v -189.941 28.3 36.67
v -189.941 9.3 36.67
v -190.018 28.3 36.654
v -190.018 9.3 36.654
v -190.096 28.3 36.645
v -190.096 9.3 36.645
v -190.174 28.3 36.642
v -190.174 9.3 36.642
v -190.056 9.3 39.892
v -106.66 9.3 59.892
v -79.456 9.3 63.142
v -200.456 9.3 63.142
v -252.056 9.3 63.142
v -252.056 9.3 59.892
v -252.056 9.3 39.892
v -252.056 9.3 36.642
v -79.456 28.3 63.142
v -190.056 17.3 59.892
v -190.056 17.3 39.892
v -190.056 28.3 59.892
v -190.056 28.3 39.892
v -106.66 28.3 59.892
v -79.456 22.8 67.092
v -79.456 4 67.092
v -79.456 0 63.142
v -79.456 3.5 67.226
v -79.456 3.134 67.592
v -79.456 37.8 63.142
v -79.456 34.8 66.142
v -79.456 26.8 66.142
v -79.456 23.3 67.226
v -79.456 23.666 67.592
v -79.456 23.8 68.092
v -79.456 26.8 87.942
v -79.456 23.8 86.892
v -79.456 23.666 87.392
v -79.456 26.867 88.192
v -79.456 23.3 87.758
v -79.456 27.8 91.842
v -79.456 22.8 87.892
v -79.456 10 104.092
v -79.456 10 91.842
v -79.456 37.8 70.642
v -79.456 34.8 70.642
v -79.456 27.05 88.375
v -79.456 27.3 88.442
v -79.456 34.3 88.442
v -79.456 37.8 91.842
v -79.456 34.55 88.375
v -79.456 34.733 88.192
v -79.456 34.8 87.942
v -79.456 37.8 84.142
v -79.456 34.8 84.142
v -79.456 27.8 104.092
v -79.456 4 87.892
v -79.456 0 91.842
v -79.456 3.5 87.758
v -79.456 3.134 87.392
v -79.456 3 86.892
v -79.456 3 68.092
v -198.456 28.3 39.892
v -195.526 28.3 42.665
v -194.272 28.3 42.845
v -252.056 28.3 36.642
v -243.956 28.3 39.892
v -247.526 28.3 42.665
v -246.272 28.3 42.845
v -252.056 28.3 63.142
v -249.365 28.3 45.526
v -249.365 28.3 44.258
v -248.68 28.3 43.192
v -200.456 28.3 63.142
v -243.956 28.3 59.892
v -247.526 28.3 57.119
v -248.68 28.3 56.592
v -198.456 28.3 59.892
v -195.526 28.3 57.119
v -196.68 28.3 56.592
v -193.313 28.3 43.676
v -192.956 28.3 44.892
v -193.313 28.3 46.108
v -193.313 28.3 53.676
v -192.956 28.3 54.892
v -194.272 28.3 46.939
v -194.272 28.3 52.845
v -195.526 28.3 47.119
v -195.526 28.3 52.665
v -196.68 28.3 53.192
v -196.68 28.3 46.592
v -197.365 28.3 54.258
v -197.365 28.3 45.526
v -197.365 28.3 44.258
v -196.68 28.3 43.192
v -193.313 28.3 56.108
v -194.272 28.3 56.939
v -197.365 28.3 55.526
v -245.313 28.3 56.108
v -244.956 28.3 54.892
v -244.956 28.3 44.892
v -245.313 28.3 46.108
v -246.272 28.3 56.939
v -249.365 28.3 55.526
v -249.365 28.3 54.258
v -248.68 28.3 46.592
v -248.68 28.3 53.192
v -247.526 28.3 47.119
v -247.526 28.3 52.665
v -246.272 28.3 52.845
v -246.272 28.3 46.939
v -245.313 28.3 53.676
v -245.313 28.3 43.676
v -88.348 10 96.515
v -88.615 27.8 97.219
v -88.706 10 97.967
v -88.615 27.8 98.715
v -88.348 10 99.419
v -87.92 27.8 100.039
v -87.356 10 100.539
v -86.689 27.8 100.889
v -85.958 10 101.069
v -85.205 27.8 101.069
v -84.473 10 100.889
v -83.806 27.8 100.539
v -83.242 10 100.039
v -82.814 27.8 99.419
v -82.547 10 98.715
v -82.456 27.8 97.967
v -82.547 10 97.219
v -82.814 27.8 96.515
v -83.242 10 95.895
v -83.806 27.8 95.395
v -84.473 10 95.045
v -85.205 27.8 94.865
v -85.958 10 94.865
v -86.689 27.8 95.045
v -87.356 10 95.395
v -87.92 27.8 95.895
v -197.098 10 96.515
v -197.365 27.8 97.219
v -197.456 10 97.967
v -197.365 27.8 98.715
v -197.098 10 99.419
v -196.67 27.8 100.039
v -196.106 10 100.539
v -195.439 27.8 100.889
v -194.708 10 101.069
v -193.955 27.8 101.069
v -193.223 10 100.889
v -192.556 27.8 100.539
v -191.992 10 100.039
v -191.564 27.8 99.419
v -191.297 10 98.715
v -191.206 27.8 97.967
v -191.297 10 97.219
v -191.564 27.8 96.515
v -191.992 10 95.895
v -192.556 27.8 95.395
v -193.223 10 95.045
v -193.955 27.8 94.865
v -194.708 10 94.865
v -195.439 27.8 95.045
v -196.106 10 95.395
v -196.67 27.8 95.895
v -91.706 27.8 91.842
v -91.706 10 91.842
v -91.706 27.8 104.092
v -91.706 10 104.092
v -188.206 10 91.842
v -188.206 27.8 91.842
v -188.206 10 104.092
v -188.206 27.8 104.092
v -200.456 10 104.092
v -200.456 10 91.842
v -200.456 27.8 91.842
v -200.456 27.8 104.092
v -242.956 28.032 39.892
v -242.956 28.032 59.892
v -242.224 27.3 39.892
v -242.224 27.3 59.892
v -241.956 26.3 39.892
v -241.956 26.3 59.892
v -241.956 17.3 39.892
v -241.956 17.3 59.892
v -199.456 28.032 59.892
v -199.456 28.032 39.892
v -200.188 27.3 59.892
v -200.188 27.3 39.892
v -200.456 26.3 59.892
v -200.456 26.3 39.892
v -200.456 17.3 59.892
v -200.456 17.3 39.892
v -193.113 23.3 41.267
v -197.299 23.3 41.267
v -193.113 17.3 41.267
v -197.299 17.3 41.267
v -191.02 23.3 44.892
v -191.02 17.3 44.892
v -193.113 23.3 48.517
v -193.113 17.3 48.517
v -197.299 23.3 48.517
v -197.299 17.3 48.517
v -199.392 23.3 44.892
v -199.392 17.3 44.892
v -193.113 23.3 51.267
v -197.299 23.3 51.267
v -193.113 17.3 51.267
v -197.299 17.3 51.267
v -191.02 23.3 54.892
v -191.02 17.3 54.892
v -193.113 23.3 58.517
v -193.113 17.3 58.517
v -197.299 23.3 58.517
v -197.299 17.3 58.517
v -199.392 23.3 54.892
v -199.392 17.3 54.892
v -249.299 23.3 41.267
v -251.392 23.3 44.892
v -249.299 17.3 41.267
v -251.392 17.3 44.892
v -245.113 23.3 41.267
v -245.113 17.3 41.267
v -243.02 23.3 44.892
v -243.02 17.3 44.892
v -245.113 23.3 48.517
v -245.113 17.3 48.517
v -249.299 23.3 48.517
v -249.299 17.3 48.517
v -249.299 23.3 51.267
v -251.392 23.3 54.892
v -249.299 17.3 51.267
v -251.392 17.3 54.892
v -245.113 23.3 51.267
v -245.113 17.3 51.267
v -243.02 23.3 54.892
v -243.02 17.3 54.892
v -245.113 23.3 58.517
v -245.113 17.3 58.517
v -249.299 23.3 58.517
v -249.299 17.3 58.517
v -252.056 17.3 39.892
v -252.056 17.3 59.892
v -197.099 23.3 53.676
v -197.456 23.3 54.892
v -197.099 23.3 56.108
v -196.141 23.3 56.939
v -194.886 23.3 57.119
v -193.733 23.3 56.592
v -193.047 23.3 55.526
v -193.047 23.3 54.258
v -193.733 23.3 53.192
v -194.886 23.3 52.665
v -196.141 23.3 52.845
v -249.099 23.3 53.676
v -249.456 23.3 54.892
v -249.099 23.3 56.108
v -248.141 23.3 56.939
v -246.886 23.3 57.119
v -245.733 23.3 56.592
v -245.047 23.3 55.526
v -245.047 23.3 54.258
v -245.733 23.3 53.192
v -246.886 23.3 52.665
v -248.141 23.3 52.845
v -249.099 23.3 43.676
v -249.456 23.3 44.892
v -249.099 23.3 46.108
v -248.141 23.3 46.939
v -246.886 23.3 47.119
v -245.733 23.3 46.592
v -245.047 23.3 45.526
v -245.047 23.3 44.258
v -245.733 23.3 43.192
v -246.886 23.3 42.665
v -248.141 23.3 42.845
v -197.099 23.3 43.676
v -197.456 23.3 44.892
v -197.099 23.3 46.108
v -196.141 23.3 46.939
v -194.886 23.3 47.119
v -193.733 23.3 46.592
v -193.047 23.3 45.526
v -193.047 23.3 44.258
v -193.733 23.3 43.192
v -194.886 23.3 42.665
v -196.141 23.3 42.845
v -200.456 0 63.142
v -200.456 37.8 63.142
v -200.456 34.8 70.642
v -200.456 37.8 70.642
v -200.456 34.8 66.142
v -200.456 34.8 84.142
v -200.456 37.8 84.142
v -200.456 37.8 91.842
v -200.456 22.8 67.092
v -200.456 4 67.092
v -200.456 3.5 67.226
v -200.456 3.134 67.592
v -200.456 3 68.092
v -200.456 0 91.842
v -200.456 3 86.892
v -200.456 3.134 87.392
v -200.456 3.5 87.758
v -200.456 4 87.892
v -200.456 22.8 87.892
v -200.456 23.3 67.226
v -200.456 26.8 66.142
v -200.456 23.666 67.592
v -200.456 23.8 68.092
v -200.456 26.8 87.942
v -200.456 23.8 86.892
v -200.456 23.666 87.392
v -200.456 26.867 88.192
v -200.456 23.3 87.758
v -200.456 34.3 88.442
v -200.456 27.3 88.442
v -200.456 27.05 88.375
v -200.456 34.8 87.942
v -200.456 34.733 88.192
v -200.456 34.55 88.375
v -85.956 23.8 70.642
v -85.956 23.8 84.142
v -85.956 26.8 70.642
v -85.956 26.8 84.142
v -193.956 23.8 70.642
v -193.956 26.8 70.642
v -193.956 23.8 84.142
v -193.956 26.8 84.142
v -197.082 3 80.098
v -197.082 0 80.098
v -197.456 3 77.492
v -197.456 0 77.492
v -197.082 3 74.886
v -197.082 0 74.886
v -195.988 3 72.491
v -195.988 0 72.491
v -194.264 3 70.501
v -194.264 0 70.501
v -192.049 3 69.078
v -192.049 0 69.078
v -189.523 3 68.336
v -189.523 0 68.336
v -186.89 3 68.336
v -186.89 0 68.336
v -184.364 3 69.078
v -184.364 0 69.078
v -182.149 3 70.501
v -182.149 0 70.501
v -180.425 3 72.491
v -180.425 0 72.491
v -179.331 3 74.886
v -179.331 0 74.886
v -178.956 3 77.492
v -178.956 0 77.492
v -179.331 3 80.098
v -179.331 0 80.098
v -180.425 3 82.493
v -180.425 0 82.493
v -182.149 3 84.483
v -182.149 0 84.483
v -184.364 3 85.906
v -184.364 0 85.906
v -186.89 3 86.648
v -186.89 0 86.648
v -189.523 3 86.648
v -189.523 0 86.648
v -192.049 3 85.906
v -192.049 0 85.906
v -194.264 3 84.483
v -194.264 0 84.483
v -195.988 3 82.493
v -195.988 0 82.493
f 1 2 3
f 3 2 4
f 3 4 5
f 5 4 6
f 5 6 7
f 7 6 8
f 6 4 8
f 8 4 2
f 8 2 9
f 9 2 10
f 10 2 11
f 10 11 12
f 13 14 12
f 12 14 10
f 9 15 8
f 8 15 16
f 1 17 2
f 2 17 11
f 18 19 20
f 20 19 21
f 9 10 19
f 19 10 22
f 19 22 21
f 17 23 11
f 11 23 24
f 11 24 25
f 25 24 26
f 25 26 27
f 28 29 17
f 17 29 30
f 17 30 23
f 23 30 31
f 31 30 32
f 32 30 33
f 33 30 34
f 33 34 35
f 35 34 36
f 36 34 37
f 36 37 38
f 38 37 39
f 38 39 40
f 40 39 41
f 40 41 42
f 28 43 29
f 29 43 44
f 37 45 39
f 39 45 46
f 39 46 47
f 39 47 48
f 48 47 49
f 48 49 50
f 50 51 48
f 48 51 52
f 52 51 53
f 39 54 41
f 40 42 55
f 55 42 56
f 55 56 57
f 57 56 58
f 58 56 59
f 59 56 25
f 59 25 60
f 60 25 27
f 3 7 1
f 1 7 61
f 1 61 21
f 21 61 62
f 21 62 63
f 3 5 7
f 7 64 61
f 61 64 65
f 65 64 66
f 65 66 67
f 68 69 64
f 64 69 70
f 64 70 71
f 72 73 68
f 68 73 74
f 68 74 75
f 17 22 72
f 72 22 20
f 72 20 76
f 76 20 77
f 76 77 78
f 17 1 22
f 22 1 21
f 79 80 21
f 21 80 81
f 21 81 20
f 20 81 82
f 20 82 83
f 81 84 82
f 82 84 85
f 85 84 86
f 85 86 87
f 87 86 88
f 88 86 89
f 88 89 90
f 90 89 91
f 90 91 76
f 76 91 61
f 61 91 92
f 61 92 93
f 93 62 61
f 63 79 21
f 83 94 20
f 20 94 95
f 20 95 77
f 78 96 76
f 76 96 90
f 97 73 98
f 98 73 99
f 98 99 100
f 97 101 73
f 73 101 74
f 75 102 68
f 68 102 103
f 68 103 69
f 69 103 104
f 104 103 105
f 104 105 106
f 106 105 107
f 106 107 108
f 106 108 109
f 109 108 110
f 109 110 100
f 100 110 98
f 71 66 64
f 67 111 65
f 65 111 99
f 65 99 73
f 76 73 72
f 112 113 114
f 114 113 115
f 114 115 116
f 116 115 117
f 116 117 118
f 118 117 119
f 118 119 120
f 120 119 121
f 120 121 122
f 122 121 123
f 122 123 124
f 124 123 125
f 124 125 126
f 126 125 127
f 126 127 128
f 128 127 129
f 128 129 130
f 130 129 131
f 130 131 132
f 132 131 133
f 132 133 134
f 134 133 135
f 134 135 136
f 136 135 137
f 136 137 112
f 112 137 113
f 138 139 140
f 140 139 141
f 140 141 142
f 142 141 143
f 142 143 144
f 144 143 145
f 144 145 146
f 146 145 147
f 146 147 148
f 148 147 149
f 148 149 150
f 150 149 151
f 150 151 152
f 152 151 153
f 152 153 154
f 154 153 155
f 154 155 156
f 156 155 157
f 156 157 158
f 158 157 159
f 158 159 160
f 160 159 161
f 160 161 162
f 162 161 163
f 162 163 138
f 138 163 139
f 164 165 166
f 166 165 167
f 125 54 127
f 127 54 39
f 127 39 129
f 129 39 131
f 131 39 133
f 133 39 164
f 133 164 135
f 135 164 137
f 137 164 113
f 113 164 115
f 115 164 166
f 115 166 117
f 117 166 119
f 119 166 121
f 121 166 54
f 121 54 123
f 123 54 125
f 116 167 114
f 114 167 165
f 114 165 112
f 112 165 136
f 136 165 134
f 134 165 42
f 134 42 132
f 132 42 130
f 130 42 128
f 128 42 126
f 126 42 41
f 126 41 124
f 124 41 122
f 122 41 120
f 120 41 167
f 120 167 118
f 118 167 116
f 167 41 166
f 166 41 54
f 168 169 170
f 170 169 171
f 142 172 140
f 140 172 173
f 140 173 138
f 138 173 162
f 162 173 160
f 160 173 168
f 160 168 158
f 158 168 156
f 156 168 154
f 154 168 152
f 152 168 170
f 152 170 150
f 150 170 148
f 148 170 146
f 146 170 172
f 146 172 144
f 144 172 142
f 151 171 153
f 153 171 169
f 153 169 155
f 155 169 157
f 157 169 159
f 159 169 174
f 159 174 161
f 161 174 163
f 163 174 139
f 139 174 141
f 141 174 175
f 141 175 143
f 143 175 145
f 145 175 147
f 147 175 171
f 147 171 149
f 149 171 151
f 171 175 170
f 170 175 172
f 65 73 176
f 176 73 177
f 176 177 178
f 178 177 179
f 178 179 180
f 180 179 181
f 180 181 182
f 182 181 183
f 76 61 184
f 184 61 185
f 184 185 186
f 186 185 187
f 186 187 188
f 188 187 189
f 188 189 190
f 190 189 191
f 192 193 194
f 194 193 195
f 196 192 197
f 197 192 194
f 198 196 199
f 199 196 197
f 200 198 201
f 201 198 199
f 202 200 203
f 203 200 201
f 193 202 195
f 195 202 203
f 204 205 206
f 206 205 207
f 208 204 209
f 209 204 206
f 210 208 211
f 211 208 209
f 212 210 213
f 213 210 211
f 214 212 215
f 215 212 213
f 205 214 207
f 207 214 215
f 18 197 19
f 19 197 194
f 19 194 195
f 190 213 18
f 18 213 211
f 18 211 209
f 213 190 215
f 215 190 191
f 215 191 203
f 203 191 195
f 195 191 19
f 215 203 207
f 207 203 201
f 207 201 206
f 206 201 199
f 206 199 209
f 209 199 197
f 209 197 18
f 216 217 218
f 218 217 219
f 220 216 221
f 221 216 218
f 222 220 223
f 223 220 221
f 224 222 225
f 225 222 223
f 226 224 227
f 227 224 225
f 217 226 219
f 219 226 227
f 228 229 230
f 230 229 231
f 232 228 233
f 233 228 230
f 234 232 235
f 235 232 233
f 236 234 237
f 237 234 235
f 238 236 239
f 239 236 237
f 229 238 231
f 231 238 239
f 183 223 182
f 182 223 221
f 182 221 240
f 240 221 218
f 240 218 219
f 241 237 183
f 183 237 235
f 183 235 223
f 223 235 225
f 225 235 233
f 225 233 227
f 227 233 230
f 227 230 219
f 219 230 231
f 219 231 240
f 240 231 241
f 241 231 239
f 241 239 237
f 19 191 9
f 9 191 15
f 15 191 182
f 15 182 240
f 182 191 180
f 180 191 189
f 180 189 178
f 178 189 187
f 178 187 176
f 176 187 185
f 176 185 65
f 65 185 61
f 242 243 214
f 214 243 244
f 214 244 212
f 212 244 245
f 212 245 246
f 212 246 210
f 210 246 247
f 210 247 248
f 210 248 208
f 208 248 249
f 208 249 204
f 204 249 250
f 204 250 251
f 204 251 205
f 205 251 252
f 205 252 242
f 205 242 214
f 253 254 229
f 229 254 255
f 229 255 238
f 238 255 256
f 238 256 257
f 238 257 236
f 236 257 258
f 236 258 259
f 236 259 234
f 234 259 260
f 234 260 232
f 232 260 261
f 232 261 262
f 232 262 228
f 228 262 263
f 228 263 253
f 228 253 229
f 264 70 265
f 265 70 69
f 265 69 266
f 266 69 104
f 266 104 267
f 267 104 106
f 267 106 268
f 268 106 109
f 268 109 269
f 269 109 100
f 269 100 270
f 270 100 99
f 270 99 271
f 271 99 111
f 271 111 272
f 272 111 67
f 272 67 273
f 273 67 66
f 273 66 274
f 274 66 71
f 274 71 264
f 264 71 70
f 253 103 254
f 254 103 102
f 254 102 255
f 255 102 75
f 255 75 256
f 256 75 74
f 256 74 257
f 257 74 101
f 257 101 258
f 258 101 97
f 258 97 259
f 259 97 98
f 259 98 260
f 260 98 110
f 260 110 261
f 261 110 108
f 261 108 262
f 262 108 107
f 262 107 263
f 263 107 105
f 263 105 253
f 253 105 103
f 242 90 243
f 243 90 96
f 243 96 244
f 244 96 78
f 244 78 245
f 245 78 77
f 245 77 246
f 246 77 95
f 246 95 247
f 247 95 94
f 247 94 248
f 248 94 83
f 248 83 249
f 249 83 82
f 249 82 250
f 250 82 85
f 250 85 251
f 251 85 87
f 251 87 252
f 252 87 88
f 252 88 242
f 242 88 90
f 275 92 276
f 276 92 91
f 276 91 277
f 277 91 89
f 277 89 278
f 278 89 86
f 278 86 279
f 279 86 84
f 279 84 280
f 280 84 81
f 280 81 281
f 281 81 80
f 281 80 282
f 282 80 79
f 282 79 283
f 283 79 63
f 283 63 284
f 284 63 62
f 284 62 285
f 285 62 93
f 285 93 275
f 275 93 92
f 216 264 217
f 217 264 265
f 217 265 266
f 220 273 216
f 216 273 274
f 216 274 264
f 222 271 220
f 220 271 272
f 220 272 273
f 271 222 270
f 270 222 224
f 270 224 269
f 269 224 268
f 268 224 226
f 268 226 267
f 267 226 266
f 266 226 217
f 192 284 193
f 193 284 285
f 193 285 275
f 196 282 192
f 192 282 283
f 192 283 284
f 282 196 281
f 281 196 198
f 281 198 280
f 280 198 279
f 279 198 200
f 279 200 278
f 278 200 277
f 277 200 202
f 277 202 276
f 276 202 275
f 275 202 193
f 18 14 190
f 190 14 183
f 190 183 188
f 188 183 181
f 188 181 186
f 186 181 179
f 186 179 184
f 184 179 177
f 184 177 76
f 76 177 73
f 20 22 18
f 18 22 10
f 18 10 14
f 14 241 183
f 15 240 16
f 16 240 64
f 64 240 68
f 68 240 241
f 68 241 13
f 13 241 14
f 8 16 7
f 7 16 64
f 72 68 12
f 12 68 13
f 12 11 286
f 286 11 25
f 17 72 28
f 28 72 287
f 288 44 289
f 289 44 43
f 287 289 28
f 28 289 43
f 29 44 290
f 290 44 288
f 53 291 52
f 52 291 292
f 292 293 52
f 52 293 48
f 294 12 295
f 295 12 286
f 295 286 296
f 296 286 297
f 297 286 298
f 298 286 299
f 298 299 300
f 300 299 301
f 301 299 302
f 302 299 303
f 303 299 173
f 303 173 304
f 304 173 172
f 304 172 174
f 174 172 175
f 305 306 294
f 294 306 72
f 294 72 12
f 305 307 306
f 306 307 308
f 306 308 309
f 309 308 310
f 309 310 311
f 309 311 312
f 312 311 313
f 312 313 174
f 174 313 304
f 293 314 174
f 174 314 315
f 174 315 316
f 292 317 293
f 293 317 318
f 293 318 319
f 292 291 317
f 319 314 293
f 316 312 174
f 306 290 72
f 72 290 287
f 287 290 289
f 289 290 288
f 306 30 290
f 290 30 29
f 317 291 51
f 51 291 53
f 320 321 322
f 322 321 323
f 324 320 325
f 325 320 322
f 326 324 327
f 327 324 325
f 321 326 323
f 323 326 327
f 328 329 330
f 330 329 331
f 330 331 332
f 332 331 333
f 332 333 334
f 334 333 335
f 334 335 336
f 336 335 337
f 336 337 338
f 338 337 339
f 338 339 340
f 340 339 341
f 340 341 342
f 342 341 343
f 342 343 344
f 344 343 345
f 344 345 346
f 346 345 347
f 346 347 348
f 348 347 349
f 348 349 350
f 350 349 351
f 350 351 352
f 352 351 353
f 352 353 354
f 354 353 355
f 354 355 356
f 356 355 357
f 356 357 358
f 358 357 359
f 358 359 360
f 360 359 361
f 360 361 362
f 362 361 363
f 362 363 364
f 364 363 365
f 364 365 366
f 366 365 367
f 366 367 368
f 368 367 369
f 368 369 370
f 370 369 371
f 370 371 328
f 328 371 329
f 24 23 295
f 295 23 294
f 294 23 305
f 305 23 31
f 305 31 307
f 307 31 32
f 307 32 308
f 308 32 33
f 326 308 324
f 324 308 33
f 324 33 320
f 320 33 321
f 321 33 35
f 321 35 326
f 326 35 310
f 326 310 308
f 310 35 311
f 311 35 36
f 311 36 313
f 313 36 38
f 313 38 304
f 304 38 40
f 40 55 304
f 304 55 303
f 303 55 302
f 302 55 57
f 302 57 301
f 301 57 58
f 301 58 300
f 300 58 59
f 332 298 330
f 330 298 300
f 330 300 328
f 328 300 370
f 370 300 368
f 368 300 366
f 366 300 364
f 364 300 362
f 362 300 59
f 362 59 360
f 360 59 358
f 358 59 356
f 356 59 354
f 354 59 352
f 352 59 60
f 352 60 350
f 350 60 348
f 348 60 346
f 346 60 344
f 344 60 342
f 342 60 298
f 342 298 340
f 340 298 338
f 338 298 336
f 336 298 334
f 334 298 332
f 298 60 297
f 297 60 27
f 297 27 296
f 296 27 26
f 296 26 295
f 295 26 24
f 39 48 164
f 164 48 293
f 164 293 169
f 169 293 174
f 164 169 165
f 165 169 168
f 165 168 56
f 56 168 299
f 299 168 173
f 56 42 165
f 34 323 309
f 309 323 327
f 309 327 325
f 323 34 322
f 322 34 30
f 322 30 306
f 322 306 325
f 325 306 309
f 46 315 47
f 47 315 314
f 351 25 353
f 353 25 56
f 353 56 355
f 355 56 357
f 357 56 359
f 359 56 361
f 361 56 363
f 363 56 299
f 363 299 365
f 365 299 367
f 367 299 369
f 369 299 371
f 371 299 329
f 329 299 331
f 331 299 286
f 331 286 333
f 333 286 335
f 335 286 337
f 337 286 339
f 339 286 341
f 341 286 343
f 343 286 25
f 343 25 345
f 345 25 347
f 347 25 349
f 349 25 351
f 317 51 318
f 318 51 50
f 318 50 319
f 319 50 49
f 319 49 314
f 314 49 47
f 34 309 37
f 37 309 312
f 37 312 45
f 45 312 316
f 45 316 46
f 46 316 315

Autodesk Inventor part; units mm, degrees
ref_plane "YZ Plane" through (0, 0, 0) normal (1, 0, 0) x (0, 1, 0)
ref_plane "XZ Plane" through (0, 0, 0) normal (0, 1, 0) x (-1, 0, 0)
ref_plane "XY Plane" through (0, 0, 0) normal (0, 0, 1) x (1, 0, 0)
sketch "Sketch1" plane through (0, 0, 0) normal (0, 1, 0) x (-1, 0, 0)
  line L0 (200.4562, 91.842) -> (79.4562, 91.842)
  line L1 (79.4562, 91.842) -> (79.4562, 63.142)
  line L2 (79.4562, 63.142) -> (200.4562, 63.142)
  line L3 (200.4562, 63.142) -> (200.4562, 91.842)
  point P0 (0, 0)
  dimension "d0" = 121
  dimension "d1" = 28.7
extrude "Extrusion1" add sketch "Sketch1" along normal blind 26.8
sketch "Sketch2" plane through (-79.4562, 0, 91.842) normal (1, 0, 0) x (0, 0, -1)
  line L0 (4.95, 3) -> (23.75, 3)
  line L1 (24.75, 4) -> (24.75, 22.8)
  line L2 (23.75, 23.8) -> (4.95, 23.8)
  line L3 (3.95, 22.8) -> (3.95, 4)
  line L4 (28.7, 0) -> (28.7, 26.8) projected
  line L5 (0, 0) -> (0, 26.8) projected
  line L6 (0, 26.8) -> (28.7, 26.8) projected
  arc A0 (24.75, 22.8) -> (23.75, 23.8) centre (23.75, 22.8) ccw
  arc A1 (23.75, 3) -> (24.75, 4) centre (23.75, 4) ccw
  arc A2 (3.95, 4) -> (4.95, 3) centre (4.95, 4) ccw
  arc A3 (4.95, 23.8) -> (3.95, 22.8) centre (4.95, 22.8) ccw
  line L7 (0, 0) -> (28.7, 0) projected
  point P0 (91.842, 0)
  point P1 (3.95, 3)
  point P2 (24.75, 23.8)
  point P3 (3.95, 23.8)
  dimension "d4" = 20.8
  dimension "d5" = 20.8
  dimension "d7" = 3.95
  dimension "d8" = 3
  dimension "d9" = 1
  dimension "d137" = 3.95
  dimension "d138" = 3
extrude "Extrusion2" cut sketch "Sketch2" against normal blind 121 contours A2 L3 A3 L2 A0 L1 A1 L0
sketch "Sketch3" plane through (0, 0, 0) normal (0, -1, 0) x (1, 0, 0)
  line L0 (-200.4562, 63.142) -> (-200.4562, 91.842) projected
  line L1 (-200.4562, 91.842) -> (-79.4562, 91.842) projected
  line L2 (-79.4562, 63.142) -> (-200.4562, 63.142) projected
  circle A0 centre (-188.2062, 77.492) radius 9.25
  line L3 (-79.4562, 91.842) -> (-79.4562, 63.142) projected
  point P0 (0, 0)
  dimension "d20" = 14.35
  dimension "d21" = 18.5
  dimension "d287" = 12.25
hole "Hole1" at (-188.2062, 0, 77.492) direction (0, 1, 0) diameter 18.5 depth 5
sketch "Sketch4" plane through (0, 26.8, 0) normal (0, 1, 0) x (1, 0, 0)
  line L0 (-85.9562, -84.142) -> (-193.9562, -84.142)
  line L1 (-193.9562, -84.142) -> (-193.9562, -70.642)
  line L2 (-193.9562, -70.642) -> (-85.9562, -70.642)
  line L3 (-85.9562, -70.642) -> (-85.9562, -84.142)
  line L4 (-79.4562, -91.842) -> (-79.4562, -63.142) projected
  line L5 (-200.4562, -63.142) -> (-200.4562, -91.842) projected
  point P0 (0, 0)
  point P1 (-79.4562, -86.142)
  point P2 (-79.4562, -65.142)
  point P3 (-179.4562, -65.142)
  point P4 (-179.4562, -86.142)
  point P5 (-200.4562, -91.842)
  point P6 (-79.4562, -87.892)
  dimension "d30" = 6.5
  dimension "d31" = 6.5
  dimension "d32" = 13.5
  dimension "d41" = 3.75
extrude "Extrusion3" cut sketch "Sketch4" against normal blind 5
sketch "Sketch5" plane through (0, 26.8, 0) normal (0, 1, 0) x (1, 0, 0)
  line L0 (-79.4562, -91.842) -> (-79.4562, -63.142) projected
  line L1 (-200.4562, -63.142) -> (-200.4562, -91.842) projected
  line L2 (-79.4562, -91.842) -> (-200.4562, -91.842)
  line L3 (-200.4562, -91.842) -> (-200.4562, -88.442)
  line L4 (-200.4562, -88.442) -> (-79.4562, -88.442)
  line L5 (-79.4562, -88.442) -> (-79.4562, -91.842)
  line L6 (-79.4562, -63.142) -> (-200.4562, -63.142)
  line L7 (-200.4562, -63.142) -> (-200.4562, -66.142)
  line L8 (-200.4562, -66.142) -> (-79.4562, -66.142)
  line L9 (-79.4562, -66.142) -> (-79.4562, -63.142)
  line L10 (-79.4562, -63.142) -> (-200.4562, -63.142) projected
  line L11 (-79.4562, -87.892) -> (-79.4562, -87.642)
  line L12 (-79.4562, -87.642) -> (-79.4562, -81.492)
  point P0 (0, 0)
  point P1 (-79.4562, -66.142)
  dimension "d38" = 3.4
  dimension "d39" = 3
  dimension "d40" = 0
  dimension "d42" = 22.3
  dimension "d288" = 0.25
  dimension "d289" = 6.15
extrude "Extrusion4" add sketch "Sketch5" along normal blind 8 contours L2 L1 L4 L0 | L1 L6 L0 L8
sketch "Sketch6" plane through (0, 34.8, 0) normal (0, 1, 0) x (1, 0, 0)
  line L0 (-200.4562, -91.842) -> (-79.4562, -91.842) projected
  line L1 (-200.4562, -66.142) -> (-200.4562, -88.442) projected
  line L2 (-79.4562, -91.842) -> (-200.4562, -91.842)
  line L3 (-200.4562, -91.842) -> (-200.4562, -84.142)
  line L4 (-200.4562, -84.142) -> (-79.4562, -84.142)
  line L5 (-79.4562, -84.142) -> (-79.4562, -91.842)
  line L6 (-79.4562, -63.142) -> (-200.4562, -63.142) projected
  line L7 (-79.4562, -63.142) -> (-200.4562, -63.142)
  line L8 (-200.4562, -63.142) -> (-200.4562, -70.642)
  line L9 (-200.4562, -70.642) -> (-79.4562, -70.642)
  line L10 (-79.4562, -70.642) -> (-79.4562, -63.142)
  line L11 (-85.9562, -84.142) -> (-193.9562, -84.142) projected
  line L12 (-193.9562, -70.642) -> (-85.9562, -70.642) projected
  point P0 (0, 0)
  point P1 (-200.4562, -91.842)
  dimension "d45" = 0
  dimension "d46" = 0
extrude "Extrusion5" add sketch "Sketch6" along normal blind 3
sketch "Sketch11" plane through (-79.4562, 0, 63.142) normal (0, 0, -1) x (-1, 0, 0)
  line L0 (172.6, 9.3) -> (0, 9.3)
  line L1 (0, 9.3) -> (0, 28.3)
  line L2 (0, 28.3) -> (172.6, 28.3)
  line L3 (172.6, 28.3) -> (172.6, 9.3)
  line L4 (0, 37.8) -> (121, 37.8) projected
  line L5 (0, 0) -> (0, 37.8) projected
  line L6 (0, 0) -> (121, 0) projected
  line L7 (0, 28.3) -> (0, 49.8)
  line L8 (0, 34.8) -> (121, 34.8) projected
  line L9 (121, 0) -> (121, 37.8) projected
  point P0 (-79.4562, 0)
  point P1 (0, 3)
  dimension "d97" = 0
  dimension "d105" = 12
  dimension "d110" = 9.5
  dimension "d111" = 21.5
  dimension "d113" = 19
  dimension "d114" = 9.3
  dimension "d174" = 51.6
extrude "Extrusion9" add sketch "Sketch11" along normal blind 26.5 contours L0 L9 L2 L3 | L0 L1 L2 L9
sketch "Sketch12" plane through (-252.0562, 28.3, 63.142) normal (0, 1, 0) x (1, 0, 0)
  line L0 (51.6, 3.25) -> (10.1, 3.25)
  line L1 (10.1, 3.25) -> (10.1, 23.25)
  line L2 (10.1, 23.25) -> (51.6, 23.25)
  line L3 (51.6, 23.25) -> (51.6, 3.25)
  line L4 (0, 0) -> (51.6, 0) projected
  line L5 (0, 26.5) -> (172.6, 26.5) projected
  line L6 (0, 0) -> (0, 26.5) projected
  line L7 (51.6, 0) -> (51.6, -7.5) projected
  line L8 (172.6, 0) -> (51.6, 0) projected
  line L9 (172.6, 0) -> (172.6, 26.5) projected
  point P0 (252.0562, 63.142)
  point P1 (49.2771, 26.5)
  point P2 (51.6, -3.75)
  point P3 (82, 26.5)
  dimension "d120" = 41.5
  dimension "d121" = 20
  dimension "d122" = 3.25
  dimension "d123" = 3.25
  dimension "d127" = 0
  dimension "d128" = 10.1
extrude "Extrusion10" cut sketch "Sketch12" against normal blind 26.5 contours L0 L1 L2 L3
sketch "Sketch14" plane through (-252.0562, 28.3, 63.142) normal (0, 1, 0) x (1, 0, 0)
  circle A0 centre (4.85, 8.25) radius 2.25
  circle A1 centre (4.85, 18.25) radius 2.25
  circle A2 centre (56.85, 8.25) radius 2.25
  circle A3 centre (56.85, 18.25) radius 2.25
  line L0 (10.1, 3.25) -> (10.1, 23.25) projected
  line L1 (51.6, 23.25) -> (51.6, 3.25) projected
  line L2 (0, 0) -> (0, 26.5) projected
  line L3 (51.6, 3.25) -> (10.1, 3.25) projected
  point P0 (252.0562, 63.142)
  dimension "d141" = 4.5
  dimension "d142" = 4.5
  dimension "d143" = 4.5
  dimension "d144" = 4.5
  dimension "d145" = 5.25
  dimension "d146" = 5.25
  dimension "d148" = 4.85
  dimension "d149" = 5.25
  dimension "d150" = 10
  dimension "d151" = 5
  dimension "d153" = 5.25
  dimension "d154" = 10
  dimension "d155" = 5
sketch "Sketch15" plane through (-252.0562, 9.3, 63.142) normal (-1, 0, 0) x (0, 0, 1)
  line L0 (-23.25, 0) -> (-3.25, 0)
  line L1 (-3.25, 0) -> (-3.25, 14)
  line L2 (-3.25, 14) -> (-23.25, 14)
  line L3 (-23.25, 14) -> (-23.25, 0)
  line L4 (-26.5, 0) -> (-26.5, 19) projected
  line L5 (0, 0) -> (0, 19) projected
  line L6 (0, 0) -> (-26.5, 0) projected
  line L7 (0, 19) -> (-26.5, 19) projected
  point P0 (-63.142, -9.3)
  dimension "d156" = 3.25
  dimension "d157" = 3.25
  dimension "d158" = 0
  dimension "d159" = 5
extrude "Extrusion11" cut sketch "Sketch15" against normal blind 62 contours L3 L2 L1 L0
hole "Hole3" at (-195.2062, 28.3, 44.892) at (-195.2062, 28.3, 54.892) at (-247.2062, 28.3, 54.892) at (-247.2062, 28.3, 44.892) direction (0, -1, 0) diameter 4.5 depth 6
sketch "Sketch19" plane through (-200.4562, 23.3, 39.892) normal (0, -1, 0) x (1, 0, 0)
  circle A0 centre (5.25, 5) radius 2.25 projected
  line L0 (3.1571, 1.375) -> (1.0642, 5)
  line L1 (1.0642, 5) -> (3.1571, 8.625)
  line L2 (3.1571, 8.625) -> (7.3429, 8.625)
  line L3 (7.3429, 8.625) -> (9.4358, 5)
  line L4 (9.4358, 5) -> (7.3429, 1.375)
  line L5 (7.3429, 1.375) -> (3.1571, 1.375)
  circle A1 centre (5.25, 15) radius 2.25 projected
  line L6 (3.1571, 11.375) -> (1.0642, 15)
  line L7 (1.0642, 15) -> (3.1571, 18.625)
  line L8 (3.1571, 18.625) -> (7.3429, 18.625)
  line L9 (7.3429, 18.625) -> (9.4358, 15)
  line L10 (9.4358, 15) -> (7.3429, 11.375)
  line L11 (7.3429, 11.375) -> (3.1571, 11.375)
  circle A2 centre (-46.75, 5) radius 2.25 projected
  line L12 (-50.9358, 5) -> (-48.8429, 8.625)
  line L13 (-48.8429, 8.625) -> (-44.6571, 8.625)
  line L14 (-44.6571, 8.625) -> (-42.5642, 5)
  line L15 (-42.5642, 5) -> (-44.6571, 1.375)
  line L16 (-44.6571, 1.375) -> (-48.8429, 1.375)
  line L17 (-48.8429, 1.375) -> (-50.9358, 5)
  circle A3 centre (-46.75, 15) radius 2.25 projected
  line L18 (-50.9358, 15) -> (-48.8429, 18.625)
  line L19 (-48.8429, 18.625) -> (-44.6571, 18.625)
  line L20 (-44.6571, 18.625) -> (-42.5642, 15)
  line L21 (-42.5642, 15) -> (-44.6571, 11.375)
  line L22 (-44.6571, 11.375) -> (-48.8429, 11.375)
  line L23 (-48.8429, 11.375) -> (-50.9358, 15)
  line L24 (0, 0) -> (0, 20) projected
  line L25 (0, 0) -> (0, 20)
  line L26 (10.4, 0) -> (0, 0)
  line L27 (0, 0) -> (0, 20)
  line L28 (0, 20) -> (10.4, 20)
  line L29 (10.4, 20) -> (10.4, 0)
  line L30 (-51.6, 0) -> (-51.6, 20) projected
  line L31 (-41.5, 0) -> (-51.6, 0)
  line L32 (-51.6, 0) -> (-51.6, 20)
  line L33 (-51.6, 20) -> (-41.5, 20)
  line L34 (-41.5, 20) -> (-41.5, 0)
  point P0 (200.4562, -39.892)
  point P1 (5.25, 15)
  point P2 (-51.6, 0)
  dimension "d191" = 7.25
  dimension "d194" = 7.25
  dimension "d197" = 0
  dimension "d198" = 0
  dimension "d199" = 7.25
  dimension "d200" = 7.25
extrude "Extrusion14" add sketch "Sketch19" along normal blind 6 contours L24 L28 L29 L26 | L30 L33 L34 L31
fillet "Fillet8" radius 2 2 edges at (-200.4562, 28.3, 49.892) (-241.9562, 28.3, 49.892)
sketch "Sketch25" plane through (-200.4562, 0, 91.842) normal (0, 0, 1) x (1, 0, 0)
  line L0 (0, 27.8) -> (12.25, 27.8)
  line L1 (12.25, 27.8) -> (12.25, 10)
  line L2 (12.25, 10) -> (0, 10)
  line L3 (0, 10) -> (0, 27.8)
  line L4 (0, 0) -> (0, 37.8) projected
  line L5 (0, 37.8) -> (121, 37.8) projected
  line L6 (0, 0) -> (121, 0) projected
  line L7 (108.75, 27.8) -> (121, 27.8)
  line L8 (121, 27.8) -> (121, 10)
  line L9 (121, 10) -> (108.75, 10)
  line L10 (108.75, 10) -> (108.75, 27.8)
  line L11 (121, 0) -> (121, 37.8) projected
  point P0 (200.4562, 0)
  dimension "d250" = 0
  dimension "d251" = 37.8
  dimension "d252" = 10
  dimension "d253" = 10
  dimension "d254" = 0
  dimension "d255" = 10
  dimension "d256" = 10
  dimension "d257" = 12.25
  dimension "d258" = 12.25
extrude "Extrusion18" add sketch "Sketch25" along normal blind 12.25 contours L0 L1 L2 L3
extrude "Extrusion19" add sketch "Sketch25" along normal blind 12.25 contours L8 L9 L10 L7
sketch "Sketch26" plane through (-200.4562, 27.8, 91.842) normal (0, 1, 0) x (1, 0, 0)
  circle A0 centre (6.125, -6.125) radius 3.125
  line L0 (12.25, 0) -> (12.25, -12.25) projected
  line L1 (12.25, -12.25) -> (0, -12.25) projected
  circle A1 centre (114.875, -6.125) radius 3.125
  line L2 (121, 0) -> (121, -12.25) projected
  line L3 (121, -12.25) -> (108.75, -12.25) projected
  point P0 (200.4562, 91.842)
  dimension "d263" = 6.25
  dimension "d266" = 6.125
  dimension "d267" = 6.125
  dimension "d268" = 6.25
  dimension "d269" = 6.125
  dimension "d270" = 6.125
hole "Hole5" at (-194.3312, 27.8, 97.967) at (-85.5812, 27.8, 97.967) direction (0, -1, 0) diameter 6.25 depth 20
sketch "Sketch28" plane through (-252.0562, 28.3, 63.142) normal (0, 1, 0) x (1, 0, 0)
  line L0 (172.6, 0) -> (172.6, 26.5) projected
  line L1 (62, 3.25) -> (62, 23.25) projected
  line L2 (0, 3.25) -> (62, 3.25) projected
  line L3 (172.6, 0) -> (172.6, 26.5)
  line L4 (172.6, 26.5) -> (172.6, 0)
  line L5 (172.6, 26.5) -> (62, 26.5)
  line L6 (0, 26.5) -> (172.6, 26.5) projected
  line L7 (62, 26.5) -> (172.6, 0)
  line L8 (62, 23.25) -> (158.9481, 0)
  line L9 (172.6, 0) -> (51.6, 0) projected
  line L10 (62, 3.25) -> (145.3962, 3.25)
  point P0 (252.0562, 63.142)
extrude "Extrusion20" cut sketch "Sketch28" against normal blind 30
fillet "Fillet12" radius 1 1 edges at (-190.0562, 18.8, 36.642)
fillet "Fillet13" radius 0.5 1 edges at (-139.9562, 34.8, 88.442)
fillet "Fillet14" radius 0.5 1 edges at (-139.9562, 26.8, 88.442)
properties part number "shaftHolder4V1"
